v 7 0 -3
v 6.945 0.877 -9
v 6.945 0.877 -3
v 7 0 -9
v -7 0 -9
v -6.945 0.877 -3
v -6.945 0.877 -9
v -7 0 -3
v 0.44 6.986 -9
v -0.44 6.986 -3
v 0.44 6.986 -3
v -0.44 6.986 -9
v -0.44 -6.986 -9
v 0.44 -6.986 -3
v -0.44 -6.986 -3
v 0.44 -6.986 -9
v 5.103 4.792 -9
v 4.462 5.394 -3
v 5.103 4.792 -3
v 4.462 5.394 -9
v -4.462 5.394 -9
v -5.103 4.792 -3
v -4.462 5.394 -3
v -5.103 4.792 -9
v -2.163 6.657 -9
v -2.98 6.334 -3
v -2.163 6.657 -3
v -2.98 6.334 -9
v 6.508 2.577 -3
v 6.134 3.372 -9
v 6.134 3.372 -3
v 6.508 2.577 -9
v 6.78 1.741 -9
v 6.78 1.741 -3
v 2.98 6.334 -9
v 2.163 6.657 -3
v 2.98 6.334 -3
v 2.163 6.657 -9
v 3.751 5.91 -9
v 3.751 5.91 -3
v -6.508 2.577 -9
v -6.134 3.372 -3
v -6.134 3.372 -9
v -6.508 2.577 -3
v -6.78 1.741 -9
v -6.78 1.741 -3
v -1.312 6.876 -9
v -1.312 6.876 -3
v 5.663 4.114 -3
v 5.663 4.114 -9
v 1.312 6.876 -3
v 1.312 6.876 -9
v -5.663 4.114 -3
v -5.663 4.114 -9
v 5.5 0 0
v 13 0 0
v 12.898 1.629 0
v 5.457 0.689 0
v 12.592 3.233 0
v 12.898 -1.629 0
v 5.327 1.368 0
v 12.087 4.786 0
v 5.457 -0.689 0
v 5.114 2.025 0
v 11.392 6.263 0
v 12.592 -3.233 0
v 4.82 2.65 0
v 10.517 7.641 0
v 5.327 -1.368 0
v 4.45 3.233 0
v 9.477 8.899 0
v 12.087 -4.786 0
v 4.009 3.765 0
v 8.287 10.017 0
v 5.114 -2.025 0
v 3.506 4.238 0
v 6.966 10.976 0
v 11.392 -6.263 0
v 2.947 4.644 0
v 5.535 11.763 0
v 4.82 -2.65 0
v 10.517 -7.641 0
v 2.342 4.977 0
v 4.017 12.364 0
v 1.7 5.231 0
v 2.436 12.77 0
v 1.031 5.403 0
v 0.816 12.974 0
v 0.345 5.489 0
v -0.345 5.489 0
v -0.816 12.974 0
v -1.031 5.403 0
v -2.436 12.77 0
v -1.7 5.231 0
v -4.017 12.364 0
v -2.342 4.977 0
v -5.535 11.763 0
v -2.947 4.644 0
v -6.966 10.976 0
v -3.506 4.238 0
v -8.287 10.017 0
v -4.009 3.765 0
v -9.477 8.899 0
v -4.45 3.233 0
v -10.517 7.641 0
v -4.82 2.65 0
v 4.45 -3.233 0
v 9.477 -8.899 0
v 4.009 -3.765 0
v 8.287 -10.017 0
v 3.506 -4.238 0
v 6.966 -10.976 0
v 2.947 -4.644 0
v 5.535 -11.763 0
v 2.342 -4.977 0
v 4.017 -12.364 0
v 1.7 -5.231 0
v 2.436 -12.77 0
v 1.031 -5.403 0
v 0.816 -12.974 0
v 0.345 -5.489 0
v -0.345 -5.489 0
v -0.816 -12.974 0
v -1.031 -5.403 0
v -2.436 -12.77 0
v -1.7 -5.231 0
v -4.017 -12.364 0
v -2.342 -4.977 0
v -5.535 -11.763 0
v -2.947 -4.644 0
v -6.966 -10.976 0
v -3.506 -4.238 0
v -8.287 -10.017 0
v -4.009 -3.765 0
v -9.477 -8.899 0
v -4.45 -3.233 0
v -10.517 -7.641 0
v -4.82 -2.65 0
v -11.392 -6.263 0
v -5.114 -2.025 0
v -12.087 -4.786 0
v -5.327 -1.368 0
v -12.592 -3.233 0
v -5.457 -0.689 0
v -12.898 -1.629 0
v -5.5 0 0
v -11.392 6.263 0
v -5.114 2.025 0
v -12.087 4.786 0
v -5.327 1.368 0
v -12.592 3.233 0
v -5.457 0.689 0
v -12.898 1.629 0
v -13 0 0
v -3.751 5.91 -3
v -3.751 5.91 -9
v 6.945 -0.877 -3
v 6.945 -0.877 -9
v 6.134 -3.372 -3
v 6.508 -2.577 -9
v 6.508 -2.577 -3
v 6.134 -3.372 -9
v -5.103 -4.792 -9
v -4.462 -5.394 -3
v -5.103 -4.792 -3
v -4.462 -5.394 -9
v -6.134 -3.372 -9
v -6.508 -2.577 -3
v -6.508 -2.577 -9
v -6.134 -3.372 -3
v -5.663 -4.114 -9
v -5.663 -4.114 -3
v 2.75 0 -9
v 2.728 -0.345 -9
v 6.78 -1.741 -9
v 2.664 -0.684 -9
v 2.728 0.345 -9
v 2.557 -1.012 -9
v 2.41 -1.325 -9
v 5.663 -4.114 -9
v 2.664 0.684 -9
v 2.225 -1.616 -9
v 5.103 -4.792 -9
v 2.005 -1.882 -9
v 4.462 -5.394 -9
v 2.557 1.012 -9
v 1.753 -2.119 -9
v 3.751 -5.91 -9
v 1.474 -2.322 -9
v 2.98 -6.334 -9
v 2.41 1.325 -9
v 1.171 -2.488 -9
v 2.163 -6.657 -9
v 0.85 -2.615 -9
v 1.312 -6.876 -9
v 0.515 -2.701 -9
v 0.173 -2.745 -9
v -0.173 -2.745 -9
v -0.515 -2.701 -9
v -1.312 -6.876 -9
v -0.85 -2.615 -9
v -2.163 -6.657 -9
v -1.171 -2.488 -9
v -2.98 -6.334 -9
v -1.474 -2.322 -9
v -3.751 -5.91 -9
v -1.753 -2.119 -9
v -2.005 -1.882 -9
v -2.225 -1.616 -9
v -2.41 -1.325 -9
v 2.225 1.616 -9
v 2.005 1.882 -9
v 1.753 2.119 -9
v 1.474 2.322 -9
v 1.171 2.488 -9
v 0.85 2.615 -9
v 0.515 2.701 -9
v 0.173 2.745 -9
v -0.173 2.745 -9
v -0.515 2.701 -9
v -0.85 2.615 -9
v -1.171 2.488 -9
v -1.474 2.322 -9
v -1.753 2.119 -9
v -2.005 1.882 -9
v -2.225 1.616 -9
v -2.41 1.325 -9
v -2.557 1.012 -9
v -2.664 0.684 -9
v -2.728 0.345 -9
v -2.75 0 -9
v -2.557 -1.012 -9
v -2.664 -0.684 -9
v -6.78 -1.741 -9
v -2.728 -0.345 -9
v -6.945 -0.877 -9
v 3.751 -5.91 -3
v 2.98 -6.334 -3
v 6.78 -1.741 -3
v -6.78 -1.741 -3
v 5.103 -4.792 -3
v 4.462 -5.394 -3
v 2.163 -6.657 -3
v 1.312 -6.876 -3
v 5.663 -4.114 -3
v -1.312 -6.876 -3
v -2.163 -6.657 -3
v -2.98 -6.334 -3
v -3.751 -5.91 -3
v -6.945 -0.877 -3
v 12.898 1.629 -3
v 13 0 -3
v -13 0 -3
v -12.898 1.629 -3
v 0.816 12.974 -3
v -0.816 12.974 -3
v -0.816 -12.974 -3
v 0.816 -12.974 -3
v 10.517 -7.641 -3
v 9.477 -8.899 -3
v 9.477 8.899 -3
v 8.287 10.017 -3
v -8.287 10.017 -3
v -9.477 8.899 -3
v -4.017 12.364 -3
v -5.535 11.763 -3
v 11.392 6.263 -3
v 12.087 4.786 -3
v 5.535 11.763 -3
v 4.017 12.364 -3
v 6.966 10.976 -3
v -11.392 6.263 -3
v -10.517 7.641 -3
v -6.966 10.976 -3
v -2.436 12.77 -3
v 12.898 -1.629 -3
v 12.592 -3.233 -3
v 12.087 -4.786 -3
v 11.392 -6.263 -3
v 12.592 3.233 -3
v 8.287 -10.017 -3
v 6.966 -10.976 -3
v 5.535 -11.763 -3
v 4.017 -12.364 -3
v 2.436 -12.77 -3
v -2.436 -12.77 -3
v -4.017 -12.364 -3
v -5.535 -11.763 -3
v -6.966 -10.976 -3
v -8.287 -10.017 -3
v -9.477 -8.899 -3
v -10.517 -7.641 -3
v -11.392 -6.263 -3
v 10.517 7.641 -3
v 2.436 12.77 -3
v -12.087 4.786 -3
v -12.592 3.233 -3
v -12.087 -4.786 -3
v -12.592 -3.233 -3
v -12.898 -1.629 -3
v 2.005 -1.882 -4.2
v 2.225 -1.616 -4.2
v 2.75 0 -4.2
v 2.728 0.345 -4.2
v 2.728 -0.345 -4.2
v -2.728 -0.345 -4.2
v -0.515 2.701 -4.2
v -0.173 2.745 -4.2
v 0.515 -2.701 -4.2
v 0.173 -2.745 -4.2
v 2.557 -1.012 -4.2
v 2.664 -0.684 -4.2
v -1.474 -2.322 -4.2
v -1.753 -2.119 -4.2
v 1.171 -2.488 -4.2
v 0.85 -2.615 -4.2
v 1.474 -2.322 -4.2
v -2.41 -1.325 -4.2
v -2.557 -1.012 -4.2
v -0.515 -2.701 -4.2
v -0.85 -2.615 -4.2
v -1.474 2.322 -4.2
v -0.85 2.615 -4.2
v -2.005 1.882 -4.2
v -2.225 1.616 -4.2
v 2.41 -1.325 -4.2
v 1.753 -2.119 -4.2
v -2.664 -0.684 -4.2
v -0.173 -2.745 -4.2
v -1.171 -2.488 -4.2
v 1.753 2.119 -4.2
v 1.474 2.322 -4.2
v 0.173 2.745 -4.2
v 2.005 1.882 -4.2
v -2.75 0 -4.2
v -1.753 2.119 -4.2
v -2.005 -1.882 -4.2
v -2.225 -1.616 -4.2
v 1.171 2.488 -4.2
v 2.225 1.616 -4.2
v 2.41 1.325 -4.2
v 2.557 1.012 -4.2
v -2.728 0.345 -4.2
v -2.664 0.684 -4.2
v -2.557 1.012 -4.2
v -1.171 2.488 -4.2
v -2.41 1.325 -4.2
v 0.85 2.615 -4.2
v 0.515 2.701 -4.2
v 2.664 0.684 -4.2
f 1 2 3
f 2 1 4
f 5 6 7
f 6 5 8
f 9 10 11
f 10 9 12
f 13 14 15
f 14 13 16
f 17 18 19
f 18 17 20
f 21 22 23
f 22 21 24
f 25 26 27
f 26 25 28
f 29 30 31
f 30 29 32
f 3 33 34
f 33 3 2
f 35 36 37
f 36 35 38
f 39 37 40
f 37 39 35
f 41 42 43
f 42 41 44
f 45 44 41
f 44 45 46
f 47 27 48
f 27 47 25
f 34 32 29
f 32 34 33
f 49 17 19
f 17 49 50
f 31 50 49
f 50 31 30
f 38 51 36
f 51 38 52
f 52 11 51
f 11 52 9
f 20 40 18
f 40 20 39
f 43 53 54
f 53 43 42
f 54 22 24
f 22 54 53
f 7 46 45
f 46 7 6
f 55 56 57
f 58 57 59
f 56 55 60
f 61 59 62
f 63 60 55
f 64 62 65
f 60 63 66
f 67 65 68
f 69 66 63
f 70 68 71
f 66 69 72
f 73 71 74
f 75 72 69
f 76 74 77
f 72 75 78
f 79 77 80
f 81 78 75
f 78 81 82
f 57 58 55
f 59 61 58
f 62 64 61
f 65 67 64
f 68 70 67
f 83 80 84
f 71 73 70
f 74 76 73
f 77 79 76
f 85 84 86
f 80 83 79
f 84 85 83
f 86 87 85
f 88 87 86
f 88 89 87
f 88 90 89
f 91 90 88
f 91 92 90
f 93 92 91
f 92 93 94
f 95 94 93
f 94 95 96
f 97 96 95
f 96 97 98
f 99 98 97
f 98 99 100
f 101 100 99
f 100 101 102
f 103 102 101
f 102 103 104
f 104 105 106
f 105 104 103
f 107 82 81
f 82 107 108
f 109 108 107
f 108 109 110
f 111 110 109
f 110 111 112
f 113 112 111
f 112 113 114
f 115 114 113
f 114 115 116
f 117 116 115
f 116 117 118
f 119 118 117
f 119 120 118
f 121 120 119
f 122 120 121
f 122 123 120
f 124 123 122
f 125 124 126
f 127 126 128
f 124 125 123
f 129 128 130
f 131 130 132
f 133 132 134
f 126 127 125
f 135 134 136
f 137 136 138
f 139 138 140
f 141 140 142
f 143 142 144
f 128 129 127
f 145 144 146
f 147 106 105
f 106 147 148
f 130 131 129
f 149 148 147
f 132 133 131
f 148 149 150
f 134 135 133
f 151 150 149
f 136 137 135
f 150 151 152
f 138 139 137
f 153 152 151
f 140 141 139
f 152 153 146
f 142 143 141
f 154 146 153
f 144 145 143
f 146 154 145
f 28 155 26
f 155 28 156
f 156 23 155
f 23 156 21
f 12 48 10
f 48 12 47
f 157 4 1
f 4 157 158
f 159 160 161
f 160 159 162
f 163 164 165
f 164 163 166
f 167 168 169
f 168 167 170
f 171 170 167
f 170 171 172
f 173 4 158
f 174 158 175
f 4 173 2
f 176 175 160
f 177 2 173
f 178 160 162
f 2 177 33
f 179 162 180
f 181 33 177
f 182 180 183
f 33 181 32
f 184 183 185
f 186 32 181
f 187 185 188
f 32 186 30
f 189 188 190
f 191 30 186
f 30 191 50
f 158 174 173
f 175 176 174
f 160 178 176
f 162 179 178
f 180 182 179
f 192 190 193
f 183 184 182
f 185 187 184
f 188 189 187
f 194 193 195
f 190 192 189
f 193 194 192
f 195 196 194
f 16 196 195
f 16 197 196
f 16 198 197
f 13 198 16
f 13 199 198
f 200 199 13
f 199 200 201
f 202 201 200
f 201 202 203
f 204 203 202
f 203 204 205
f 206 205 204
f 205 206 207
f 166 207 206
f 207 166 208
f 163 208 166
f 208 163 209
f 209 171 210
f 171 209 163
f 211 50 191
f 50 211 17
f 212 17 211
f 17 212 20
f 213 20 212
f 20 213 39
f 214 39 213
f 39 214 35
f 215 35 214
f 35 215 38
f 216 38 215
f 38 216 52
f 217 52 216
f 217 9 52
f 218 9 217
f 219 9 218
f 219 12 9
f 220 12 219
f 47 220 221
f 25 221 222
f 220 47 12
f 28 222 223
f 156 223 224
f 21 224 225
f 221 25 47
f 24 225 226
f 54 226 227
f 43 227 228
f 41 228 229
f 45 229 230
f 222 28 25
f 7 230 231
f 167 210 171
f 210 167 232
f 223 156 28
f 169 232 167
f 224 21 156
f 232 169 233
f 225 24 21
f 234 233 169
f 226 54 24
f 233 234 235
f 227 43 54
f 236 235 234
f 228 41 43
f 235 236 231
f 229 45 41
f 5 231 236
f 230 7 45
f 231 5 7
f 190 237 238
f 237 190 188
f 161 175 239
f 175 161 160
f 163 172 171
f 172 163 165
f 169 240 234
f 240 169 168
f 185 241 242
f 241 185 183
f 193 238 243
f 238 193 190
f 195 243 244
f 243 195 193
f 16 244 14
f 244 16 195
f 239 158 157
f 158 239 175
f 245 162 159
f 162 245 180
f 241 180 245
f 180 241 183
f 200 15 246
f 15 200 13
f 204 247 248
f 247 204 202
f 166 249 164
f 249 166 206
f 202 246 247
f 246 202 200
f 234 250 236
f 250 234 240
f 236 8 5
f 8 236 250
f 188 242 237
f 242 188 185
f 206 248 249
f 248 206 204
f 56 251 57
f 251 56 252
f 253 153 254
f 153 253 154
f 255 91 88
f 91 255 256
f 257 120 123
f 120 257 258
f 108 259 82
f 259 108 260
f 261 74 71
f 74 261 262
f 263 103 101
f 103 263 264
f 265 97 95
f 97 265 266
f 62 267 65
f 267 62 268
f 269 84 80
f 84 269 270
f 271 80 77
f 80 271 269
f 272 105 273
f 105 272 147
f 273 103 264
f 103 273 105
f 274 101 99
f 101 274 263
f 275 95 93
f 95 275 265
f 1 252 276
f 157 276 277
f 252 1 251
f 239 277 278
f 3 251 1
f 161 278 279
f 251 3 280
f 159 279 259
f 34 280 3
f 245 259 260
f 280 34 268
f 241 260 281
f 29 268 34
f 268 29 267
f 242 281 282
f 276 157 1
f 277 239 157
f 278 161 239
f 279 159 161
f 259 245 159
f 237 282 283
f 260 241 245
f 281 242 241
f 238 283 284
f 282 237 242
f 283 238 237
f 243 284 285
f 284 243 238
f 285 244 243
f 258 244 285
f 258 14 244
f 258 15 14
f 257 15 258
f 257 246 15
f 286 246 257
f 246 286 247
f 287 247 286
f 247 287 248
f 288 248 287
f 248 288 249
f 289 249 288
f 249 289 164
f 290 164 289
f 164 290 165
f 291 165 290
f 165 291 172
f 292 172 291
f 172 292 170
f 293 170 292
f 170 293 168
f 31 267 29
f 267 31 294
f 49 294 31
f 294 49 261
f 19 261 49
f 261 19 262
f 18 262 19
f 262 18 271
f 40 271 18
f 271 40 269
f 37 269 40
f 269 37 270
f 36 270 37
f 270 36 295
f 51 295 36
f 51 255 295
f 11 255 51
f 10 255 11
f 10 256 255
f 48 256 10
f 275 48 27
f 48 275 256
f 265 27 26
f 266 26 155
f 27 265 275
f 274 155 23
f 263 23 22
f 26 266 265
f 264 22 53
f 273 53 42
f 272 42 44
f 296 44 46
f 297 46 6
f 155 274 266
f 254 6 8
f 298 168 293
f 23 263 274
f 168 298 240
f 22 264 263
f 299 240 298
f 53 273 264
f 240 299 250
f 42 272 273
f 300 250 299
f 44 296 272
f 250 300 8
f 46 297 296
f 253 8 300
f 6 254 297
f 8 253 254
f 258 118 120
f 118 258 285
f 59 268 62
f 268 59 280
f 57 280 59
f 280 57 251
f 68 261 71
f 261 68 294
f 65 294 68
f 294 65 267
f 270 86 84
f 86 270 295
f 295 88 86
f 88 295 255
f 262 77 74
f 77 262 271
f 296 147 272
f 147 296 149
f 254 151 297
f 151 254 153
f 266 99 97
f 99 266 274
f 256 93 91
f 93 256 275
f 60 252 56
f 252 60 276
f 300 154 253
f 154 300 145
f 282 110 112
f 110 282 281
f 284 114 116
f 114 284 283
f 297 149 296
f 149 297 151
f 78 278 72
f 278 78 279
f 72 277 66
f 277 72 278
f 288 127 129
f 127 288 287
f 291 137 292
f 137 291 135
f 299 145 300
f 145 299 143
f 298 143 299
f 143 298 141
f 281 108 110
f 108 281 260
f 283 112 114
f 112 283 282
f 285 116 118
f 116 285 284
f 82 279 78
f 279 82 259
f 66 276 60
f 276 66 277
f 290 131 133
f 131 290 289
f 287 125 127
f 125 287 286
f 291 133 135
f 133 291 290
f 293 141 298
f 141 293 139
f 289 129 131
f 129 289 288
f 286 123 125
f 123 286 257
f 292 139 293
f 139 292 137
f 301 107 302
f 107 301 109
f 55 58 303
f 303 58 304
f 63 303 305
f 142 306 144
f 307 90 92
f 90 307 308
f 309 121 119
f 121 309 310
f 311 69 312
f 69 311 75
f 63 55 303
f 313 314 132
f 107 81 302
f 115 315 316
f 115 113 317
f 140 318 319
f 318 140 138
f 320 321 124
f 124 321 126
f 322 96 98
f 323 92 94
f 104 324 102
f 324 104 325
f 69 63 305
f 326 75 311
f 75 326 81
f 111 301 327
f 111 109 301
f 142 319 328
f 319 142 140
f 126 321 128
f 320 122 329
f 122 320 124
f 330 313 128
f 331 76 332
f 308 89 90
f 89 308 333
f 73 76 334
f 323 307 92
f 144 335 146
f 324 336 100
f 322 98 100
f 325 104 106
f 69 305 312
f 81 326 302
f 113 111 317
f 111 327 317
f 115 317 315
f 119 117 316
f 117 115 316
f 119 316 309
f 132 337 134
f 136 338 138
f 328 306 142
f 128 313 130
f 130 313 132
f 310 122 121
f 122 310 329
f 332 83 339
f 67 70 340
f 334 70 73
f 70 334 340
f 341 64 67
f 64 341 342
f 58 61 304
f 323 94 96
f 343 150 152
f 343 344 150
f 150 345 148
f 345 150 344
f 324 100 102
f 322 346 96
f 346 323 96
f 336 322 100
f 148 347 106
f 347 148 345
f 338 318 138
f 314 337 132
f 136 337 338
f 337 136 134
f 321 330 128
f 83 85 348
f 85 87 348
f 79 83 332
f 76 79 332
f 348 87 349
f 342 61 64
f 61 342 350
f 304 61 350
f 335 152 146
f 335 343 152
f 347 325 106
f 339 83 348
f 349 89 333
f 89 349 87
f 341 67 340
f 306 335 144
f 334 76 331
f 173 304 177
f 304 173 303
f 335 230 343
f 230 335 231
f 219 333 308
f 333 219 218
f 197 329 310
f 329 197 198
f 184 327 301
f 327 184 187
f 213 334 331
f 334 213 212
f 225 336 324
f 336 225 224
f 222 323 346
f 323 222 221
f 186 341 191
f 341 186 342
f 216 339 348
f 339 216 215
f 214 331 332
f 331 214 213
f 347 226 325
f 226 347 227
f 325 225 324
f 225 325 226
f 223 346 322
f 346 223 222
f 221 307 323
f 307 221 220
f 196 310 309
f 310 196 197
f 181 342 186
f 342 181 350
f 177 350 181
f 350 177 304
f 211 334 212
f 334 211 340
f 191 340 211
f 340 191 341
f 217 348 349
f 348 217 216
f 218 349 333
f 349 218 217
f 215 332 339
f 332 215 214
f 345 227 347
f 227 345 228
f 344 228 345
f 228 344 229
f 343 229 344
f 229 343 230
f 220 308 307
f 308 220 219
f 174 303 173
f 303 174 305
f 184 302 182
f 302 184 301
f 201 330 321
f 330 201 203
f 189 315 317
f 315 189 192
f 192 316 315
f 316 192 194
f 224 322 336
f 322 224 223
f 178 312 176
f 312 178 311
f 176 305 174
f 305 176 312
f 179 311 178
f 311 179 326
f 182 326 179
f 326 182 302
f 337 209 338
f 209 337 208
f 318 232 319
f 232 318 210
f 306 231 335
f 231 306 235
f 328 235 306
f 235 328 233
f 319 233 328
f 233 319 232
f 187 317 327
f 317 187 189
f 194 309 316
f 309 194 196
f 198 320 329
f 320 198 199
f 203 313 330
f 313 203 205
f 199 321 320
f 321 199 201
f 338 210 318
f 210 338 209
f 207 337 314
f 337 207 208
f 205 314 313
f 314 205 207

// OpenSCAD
$fn = 50;


difference() {
	union() {
		translate(v = [0, 0, -9.0000000000]) {
			cylinder(h = 9, r = 7.0000000000);
		}
		translate(v = [0, 0, -3.0000000000]) {
			cylinder(h = 3, r = 13.0000000000);
		}
	}
	union() {
		translate(v = [0, 0, 0]) {
			rotate(a = [0, 0, 0]) {
				difference() {
					union() {
						#translate(v = [0, 0, -9.0000000000]) {
							cylinder(h = 9, r = 2.2500000000);
						}
						#translate(v = [0, 0, -4.2000000000]) {
							cylinder(h = 4.2000000000, r = 7.0000000000, r1 = 2.7500000000, r2 = 5.5000000000);
						}
						#translate(v = [0, 0, -9.0000000000]) {
							cylinder(h = 9, r = 2.7500000000);
						}
						#translate(v = [0, 0, -9.0000000000]) {
							cylinder(h = 9, r = 2.2500000000);
						}
					}
					union();
				}
			}
		}
	}
}
